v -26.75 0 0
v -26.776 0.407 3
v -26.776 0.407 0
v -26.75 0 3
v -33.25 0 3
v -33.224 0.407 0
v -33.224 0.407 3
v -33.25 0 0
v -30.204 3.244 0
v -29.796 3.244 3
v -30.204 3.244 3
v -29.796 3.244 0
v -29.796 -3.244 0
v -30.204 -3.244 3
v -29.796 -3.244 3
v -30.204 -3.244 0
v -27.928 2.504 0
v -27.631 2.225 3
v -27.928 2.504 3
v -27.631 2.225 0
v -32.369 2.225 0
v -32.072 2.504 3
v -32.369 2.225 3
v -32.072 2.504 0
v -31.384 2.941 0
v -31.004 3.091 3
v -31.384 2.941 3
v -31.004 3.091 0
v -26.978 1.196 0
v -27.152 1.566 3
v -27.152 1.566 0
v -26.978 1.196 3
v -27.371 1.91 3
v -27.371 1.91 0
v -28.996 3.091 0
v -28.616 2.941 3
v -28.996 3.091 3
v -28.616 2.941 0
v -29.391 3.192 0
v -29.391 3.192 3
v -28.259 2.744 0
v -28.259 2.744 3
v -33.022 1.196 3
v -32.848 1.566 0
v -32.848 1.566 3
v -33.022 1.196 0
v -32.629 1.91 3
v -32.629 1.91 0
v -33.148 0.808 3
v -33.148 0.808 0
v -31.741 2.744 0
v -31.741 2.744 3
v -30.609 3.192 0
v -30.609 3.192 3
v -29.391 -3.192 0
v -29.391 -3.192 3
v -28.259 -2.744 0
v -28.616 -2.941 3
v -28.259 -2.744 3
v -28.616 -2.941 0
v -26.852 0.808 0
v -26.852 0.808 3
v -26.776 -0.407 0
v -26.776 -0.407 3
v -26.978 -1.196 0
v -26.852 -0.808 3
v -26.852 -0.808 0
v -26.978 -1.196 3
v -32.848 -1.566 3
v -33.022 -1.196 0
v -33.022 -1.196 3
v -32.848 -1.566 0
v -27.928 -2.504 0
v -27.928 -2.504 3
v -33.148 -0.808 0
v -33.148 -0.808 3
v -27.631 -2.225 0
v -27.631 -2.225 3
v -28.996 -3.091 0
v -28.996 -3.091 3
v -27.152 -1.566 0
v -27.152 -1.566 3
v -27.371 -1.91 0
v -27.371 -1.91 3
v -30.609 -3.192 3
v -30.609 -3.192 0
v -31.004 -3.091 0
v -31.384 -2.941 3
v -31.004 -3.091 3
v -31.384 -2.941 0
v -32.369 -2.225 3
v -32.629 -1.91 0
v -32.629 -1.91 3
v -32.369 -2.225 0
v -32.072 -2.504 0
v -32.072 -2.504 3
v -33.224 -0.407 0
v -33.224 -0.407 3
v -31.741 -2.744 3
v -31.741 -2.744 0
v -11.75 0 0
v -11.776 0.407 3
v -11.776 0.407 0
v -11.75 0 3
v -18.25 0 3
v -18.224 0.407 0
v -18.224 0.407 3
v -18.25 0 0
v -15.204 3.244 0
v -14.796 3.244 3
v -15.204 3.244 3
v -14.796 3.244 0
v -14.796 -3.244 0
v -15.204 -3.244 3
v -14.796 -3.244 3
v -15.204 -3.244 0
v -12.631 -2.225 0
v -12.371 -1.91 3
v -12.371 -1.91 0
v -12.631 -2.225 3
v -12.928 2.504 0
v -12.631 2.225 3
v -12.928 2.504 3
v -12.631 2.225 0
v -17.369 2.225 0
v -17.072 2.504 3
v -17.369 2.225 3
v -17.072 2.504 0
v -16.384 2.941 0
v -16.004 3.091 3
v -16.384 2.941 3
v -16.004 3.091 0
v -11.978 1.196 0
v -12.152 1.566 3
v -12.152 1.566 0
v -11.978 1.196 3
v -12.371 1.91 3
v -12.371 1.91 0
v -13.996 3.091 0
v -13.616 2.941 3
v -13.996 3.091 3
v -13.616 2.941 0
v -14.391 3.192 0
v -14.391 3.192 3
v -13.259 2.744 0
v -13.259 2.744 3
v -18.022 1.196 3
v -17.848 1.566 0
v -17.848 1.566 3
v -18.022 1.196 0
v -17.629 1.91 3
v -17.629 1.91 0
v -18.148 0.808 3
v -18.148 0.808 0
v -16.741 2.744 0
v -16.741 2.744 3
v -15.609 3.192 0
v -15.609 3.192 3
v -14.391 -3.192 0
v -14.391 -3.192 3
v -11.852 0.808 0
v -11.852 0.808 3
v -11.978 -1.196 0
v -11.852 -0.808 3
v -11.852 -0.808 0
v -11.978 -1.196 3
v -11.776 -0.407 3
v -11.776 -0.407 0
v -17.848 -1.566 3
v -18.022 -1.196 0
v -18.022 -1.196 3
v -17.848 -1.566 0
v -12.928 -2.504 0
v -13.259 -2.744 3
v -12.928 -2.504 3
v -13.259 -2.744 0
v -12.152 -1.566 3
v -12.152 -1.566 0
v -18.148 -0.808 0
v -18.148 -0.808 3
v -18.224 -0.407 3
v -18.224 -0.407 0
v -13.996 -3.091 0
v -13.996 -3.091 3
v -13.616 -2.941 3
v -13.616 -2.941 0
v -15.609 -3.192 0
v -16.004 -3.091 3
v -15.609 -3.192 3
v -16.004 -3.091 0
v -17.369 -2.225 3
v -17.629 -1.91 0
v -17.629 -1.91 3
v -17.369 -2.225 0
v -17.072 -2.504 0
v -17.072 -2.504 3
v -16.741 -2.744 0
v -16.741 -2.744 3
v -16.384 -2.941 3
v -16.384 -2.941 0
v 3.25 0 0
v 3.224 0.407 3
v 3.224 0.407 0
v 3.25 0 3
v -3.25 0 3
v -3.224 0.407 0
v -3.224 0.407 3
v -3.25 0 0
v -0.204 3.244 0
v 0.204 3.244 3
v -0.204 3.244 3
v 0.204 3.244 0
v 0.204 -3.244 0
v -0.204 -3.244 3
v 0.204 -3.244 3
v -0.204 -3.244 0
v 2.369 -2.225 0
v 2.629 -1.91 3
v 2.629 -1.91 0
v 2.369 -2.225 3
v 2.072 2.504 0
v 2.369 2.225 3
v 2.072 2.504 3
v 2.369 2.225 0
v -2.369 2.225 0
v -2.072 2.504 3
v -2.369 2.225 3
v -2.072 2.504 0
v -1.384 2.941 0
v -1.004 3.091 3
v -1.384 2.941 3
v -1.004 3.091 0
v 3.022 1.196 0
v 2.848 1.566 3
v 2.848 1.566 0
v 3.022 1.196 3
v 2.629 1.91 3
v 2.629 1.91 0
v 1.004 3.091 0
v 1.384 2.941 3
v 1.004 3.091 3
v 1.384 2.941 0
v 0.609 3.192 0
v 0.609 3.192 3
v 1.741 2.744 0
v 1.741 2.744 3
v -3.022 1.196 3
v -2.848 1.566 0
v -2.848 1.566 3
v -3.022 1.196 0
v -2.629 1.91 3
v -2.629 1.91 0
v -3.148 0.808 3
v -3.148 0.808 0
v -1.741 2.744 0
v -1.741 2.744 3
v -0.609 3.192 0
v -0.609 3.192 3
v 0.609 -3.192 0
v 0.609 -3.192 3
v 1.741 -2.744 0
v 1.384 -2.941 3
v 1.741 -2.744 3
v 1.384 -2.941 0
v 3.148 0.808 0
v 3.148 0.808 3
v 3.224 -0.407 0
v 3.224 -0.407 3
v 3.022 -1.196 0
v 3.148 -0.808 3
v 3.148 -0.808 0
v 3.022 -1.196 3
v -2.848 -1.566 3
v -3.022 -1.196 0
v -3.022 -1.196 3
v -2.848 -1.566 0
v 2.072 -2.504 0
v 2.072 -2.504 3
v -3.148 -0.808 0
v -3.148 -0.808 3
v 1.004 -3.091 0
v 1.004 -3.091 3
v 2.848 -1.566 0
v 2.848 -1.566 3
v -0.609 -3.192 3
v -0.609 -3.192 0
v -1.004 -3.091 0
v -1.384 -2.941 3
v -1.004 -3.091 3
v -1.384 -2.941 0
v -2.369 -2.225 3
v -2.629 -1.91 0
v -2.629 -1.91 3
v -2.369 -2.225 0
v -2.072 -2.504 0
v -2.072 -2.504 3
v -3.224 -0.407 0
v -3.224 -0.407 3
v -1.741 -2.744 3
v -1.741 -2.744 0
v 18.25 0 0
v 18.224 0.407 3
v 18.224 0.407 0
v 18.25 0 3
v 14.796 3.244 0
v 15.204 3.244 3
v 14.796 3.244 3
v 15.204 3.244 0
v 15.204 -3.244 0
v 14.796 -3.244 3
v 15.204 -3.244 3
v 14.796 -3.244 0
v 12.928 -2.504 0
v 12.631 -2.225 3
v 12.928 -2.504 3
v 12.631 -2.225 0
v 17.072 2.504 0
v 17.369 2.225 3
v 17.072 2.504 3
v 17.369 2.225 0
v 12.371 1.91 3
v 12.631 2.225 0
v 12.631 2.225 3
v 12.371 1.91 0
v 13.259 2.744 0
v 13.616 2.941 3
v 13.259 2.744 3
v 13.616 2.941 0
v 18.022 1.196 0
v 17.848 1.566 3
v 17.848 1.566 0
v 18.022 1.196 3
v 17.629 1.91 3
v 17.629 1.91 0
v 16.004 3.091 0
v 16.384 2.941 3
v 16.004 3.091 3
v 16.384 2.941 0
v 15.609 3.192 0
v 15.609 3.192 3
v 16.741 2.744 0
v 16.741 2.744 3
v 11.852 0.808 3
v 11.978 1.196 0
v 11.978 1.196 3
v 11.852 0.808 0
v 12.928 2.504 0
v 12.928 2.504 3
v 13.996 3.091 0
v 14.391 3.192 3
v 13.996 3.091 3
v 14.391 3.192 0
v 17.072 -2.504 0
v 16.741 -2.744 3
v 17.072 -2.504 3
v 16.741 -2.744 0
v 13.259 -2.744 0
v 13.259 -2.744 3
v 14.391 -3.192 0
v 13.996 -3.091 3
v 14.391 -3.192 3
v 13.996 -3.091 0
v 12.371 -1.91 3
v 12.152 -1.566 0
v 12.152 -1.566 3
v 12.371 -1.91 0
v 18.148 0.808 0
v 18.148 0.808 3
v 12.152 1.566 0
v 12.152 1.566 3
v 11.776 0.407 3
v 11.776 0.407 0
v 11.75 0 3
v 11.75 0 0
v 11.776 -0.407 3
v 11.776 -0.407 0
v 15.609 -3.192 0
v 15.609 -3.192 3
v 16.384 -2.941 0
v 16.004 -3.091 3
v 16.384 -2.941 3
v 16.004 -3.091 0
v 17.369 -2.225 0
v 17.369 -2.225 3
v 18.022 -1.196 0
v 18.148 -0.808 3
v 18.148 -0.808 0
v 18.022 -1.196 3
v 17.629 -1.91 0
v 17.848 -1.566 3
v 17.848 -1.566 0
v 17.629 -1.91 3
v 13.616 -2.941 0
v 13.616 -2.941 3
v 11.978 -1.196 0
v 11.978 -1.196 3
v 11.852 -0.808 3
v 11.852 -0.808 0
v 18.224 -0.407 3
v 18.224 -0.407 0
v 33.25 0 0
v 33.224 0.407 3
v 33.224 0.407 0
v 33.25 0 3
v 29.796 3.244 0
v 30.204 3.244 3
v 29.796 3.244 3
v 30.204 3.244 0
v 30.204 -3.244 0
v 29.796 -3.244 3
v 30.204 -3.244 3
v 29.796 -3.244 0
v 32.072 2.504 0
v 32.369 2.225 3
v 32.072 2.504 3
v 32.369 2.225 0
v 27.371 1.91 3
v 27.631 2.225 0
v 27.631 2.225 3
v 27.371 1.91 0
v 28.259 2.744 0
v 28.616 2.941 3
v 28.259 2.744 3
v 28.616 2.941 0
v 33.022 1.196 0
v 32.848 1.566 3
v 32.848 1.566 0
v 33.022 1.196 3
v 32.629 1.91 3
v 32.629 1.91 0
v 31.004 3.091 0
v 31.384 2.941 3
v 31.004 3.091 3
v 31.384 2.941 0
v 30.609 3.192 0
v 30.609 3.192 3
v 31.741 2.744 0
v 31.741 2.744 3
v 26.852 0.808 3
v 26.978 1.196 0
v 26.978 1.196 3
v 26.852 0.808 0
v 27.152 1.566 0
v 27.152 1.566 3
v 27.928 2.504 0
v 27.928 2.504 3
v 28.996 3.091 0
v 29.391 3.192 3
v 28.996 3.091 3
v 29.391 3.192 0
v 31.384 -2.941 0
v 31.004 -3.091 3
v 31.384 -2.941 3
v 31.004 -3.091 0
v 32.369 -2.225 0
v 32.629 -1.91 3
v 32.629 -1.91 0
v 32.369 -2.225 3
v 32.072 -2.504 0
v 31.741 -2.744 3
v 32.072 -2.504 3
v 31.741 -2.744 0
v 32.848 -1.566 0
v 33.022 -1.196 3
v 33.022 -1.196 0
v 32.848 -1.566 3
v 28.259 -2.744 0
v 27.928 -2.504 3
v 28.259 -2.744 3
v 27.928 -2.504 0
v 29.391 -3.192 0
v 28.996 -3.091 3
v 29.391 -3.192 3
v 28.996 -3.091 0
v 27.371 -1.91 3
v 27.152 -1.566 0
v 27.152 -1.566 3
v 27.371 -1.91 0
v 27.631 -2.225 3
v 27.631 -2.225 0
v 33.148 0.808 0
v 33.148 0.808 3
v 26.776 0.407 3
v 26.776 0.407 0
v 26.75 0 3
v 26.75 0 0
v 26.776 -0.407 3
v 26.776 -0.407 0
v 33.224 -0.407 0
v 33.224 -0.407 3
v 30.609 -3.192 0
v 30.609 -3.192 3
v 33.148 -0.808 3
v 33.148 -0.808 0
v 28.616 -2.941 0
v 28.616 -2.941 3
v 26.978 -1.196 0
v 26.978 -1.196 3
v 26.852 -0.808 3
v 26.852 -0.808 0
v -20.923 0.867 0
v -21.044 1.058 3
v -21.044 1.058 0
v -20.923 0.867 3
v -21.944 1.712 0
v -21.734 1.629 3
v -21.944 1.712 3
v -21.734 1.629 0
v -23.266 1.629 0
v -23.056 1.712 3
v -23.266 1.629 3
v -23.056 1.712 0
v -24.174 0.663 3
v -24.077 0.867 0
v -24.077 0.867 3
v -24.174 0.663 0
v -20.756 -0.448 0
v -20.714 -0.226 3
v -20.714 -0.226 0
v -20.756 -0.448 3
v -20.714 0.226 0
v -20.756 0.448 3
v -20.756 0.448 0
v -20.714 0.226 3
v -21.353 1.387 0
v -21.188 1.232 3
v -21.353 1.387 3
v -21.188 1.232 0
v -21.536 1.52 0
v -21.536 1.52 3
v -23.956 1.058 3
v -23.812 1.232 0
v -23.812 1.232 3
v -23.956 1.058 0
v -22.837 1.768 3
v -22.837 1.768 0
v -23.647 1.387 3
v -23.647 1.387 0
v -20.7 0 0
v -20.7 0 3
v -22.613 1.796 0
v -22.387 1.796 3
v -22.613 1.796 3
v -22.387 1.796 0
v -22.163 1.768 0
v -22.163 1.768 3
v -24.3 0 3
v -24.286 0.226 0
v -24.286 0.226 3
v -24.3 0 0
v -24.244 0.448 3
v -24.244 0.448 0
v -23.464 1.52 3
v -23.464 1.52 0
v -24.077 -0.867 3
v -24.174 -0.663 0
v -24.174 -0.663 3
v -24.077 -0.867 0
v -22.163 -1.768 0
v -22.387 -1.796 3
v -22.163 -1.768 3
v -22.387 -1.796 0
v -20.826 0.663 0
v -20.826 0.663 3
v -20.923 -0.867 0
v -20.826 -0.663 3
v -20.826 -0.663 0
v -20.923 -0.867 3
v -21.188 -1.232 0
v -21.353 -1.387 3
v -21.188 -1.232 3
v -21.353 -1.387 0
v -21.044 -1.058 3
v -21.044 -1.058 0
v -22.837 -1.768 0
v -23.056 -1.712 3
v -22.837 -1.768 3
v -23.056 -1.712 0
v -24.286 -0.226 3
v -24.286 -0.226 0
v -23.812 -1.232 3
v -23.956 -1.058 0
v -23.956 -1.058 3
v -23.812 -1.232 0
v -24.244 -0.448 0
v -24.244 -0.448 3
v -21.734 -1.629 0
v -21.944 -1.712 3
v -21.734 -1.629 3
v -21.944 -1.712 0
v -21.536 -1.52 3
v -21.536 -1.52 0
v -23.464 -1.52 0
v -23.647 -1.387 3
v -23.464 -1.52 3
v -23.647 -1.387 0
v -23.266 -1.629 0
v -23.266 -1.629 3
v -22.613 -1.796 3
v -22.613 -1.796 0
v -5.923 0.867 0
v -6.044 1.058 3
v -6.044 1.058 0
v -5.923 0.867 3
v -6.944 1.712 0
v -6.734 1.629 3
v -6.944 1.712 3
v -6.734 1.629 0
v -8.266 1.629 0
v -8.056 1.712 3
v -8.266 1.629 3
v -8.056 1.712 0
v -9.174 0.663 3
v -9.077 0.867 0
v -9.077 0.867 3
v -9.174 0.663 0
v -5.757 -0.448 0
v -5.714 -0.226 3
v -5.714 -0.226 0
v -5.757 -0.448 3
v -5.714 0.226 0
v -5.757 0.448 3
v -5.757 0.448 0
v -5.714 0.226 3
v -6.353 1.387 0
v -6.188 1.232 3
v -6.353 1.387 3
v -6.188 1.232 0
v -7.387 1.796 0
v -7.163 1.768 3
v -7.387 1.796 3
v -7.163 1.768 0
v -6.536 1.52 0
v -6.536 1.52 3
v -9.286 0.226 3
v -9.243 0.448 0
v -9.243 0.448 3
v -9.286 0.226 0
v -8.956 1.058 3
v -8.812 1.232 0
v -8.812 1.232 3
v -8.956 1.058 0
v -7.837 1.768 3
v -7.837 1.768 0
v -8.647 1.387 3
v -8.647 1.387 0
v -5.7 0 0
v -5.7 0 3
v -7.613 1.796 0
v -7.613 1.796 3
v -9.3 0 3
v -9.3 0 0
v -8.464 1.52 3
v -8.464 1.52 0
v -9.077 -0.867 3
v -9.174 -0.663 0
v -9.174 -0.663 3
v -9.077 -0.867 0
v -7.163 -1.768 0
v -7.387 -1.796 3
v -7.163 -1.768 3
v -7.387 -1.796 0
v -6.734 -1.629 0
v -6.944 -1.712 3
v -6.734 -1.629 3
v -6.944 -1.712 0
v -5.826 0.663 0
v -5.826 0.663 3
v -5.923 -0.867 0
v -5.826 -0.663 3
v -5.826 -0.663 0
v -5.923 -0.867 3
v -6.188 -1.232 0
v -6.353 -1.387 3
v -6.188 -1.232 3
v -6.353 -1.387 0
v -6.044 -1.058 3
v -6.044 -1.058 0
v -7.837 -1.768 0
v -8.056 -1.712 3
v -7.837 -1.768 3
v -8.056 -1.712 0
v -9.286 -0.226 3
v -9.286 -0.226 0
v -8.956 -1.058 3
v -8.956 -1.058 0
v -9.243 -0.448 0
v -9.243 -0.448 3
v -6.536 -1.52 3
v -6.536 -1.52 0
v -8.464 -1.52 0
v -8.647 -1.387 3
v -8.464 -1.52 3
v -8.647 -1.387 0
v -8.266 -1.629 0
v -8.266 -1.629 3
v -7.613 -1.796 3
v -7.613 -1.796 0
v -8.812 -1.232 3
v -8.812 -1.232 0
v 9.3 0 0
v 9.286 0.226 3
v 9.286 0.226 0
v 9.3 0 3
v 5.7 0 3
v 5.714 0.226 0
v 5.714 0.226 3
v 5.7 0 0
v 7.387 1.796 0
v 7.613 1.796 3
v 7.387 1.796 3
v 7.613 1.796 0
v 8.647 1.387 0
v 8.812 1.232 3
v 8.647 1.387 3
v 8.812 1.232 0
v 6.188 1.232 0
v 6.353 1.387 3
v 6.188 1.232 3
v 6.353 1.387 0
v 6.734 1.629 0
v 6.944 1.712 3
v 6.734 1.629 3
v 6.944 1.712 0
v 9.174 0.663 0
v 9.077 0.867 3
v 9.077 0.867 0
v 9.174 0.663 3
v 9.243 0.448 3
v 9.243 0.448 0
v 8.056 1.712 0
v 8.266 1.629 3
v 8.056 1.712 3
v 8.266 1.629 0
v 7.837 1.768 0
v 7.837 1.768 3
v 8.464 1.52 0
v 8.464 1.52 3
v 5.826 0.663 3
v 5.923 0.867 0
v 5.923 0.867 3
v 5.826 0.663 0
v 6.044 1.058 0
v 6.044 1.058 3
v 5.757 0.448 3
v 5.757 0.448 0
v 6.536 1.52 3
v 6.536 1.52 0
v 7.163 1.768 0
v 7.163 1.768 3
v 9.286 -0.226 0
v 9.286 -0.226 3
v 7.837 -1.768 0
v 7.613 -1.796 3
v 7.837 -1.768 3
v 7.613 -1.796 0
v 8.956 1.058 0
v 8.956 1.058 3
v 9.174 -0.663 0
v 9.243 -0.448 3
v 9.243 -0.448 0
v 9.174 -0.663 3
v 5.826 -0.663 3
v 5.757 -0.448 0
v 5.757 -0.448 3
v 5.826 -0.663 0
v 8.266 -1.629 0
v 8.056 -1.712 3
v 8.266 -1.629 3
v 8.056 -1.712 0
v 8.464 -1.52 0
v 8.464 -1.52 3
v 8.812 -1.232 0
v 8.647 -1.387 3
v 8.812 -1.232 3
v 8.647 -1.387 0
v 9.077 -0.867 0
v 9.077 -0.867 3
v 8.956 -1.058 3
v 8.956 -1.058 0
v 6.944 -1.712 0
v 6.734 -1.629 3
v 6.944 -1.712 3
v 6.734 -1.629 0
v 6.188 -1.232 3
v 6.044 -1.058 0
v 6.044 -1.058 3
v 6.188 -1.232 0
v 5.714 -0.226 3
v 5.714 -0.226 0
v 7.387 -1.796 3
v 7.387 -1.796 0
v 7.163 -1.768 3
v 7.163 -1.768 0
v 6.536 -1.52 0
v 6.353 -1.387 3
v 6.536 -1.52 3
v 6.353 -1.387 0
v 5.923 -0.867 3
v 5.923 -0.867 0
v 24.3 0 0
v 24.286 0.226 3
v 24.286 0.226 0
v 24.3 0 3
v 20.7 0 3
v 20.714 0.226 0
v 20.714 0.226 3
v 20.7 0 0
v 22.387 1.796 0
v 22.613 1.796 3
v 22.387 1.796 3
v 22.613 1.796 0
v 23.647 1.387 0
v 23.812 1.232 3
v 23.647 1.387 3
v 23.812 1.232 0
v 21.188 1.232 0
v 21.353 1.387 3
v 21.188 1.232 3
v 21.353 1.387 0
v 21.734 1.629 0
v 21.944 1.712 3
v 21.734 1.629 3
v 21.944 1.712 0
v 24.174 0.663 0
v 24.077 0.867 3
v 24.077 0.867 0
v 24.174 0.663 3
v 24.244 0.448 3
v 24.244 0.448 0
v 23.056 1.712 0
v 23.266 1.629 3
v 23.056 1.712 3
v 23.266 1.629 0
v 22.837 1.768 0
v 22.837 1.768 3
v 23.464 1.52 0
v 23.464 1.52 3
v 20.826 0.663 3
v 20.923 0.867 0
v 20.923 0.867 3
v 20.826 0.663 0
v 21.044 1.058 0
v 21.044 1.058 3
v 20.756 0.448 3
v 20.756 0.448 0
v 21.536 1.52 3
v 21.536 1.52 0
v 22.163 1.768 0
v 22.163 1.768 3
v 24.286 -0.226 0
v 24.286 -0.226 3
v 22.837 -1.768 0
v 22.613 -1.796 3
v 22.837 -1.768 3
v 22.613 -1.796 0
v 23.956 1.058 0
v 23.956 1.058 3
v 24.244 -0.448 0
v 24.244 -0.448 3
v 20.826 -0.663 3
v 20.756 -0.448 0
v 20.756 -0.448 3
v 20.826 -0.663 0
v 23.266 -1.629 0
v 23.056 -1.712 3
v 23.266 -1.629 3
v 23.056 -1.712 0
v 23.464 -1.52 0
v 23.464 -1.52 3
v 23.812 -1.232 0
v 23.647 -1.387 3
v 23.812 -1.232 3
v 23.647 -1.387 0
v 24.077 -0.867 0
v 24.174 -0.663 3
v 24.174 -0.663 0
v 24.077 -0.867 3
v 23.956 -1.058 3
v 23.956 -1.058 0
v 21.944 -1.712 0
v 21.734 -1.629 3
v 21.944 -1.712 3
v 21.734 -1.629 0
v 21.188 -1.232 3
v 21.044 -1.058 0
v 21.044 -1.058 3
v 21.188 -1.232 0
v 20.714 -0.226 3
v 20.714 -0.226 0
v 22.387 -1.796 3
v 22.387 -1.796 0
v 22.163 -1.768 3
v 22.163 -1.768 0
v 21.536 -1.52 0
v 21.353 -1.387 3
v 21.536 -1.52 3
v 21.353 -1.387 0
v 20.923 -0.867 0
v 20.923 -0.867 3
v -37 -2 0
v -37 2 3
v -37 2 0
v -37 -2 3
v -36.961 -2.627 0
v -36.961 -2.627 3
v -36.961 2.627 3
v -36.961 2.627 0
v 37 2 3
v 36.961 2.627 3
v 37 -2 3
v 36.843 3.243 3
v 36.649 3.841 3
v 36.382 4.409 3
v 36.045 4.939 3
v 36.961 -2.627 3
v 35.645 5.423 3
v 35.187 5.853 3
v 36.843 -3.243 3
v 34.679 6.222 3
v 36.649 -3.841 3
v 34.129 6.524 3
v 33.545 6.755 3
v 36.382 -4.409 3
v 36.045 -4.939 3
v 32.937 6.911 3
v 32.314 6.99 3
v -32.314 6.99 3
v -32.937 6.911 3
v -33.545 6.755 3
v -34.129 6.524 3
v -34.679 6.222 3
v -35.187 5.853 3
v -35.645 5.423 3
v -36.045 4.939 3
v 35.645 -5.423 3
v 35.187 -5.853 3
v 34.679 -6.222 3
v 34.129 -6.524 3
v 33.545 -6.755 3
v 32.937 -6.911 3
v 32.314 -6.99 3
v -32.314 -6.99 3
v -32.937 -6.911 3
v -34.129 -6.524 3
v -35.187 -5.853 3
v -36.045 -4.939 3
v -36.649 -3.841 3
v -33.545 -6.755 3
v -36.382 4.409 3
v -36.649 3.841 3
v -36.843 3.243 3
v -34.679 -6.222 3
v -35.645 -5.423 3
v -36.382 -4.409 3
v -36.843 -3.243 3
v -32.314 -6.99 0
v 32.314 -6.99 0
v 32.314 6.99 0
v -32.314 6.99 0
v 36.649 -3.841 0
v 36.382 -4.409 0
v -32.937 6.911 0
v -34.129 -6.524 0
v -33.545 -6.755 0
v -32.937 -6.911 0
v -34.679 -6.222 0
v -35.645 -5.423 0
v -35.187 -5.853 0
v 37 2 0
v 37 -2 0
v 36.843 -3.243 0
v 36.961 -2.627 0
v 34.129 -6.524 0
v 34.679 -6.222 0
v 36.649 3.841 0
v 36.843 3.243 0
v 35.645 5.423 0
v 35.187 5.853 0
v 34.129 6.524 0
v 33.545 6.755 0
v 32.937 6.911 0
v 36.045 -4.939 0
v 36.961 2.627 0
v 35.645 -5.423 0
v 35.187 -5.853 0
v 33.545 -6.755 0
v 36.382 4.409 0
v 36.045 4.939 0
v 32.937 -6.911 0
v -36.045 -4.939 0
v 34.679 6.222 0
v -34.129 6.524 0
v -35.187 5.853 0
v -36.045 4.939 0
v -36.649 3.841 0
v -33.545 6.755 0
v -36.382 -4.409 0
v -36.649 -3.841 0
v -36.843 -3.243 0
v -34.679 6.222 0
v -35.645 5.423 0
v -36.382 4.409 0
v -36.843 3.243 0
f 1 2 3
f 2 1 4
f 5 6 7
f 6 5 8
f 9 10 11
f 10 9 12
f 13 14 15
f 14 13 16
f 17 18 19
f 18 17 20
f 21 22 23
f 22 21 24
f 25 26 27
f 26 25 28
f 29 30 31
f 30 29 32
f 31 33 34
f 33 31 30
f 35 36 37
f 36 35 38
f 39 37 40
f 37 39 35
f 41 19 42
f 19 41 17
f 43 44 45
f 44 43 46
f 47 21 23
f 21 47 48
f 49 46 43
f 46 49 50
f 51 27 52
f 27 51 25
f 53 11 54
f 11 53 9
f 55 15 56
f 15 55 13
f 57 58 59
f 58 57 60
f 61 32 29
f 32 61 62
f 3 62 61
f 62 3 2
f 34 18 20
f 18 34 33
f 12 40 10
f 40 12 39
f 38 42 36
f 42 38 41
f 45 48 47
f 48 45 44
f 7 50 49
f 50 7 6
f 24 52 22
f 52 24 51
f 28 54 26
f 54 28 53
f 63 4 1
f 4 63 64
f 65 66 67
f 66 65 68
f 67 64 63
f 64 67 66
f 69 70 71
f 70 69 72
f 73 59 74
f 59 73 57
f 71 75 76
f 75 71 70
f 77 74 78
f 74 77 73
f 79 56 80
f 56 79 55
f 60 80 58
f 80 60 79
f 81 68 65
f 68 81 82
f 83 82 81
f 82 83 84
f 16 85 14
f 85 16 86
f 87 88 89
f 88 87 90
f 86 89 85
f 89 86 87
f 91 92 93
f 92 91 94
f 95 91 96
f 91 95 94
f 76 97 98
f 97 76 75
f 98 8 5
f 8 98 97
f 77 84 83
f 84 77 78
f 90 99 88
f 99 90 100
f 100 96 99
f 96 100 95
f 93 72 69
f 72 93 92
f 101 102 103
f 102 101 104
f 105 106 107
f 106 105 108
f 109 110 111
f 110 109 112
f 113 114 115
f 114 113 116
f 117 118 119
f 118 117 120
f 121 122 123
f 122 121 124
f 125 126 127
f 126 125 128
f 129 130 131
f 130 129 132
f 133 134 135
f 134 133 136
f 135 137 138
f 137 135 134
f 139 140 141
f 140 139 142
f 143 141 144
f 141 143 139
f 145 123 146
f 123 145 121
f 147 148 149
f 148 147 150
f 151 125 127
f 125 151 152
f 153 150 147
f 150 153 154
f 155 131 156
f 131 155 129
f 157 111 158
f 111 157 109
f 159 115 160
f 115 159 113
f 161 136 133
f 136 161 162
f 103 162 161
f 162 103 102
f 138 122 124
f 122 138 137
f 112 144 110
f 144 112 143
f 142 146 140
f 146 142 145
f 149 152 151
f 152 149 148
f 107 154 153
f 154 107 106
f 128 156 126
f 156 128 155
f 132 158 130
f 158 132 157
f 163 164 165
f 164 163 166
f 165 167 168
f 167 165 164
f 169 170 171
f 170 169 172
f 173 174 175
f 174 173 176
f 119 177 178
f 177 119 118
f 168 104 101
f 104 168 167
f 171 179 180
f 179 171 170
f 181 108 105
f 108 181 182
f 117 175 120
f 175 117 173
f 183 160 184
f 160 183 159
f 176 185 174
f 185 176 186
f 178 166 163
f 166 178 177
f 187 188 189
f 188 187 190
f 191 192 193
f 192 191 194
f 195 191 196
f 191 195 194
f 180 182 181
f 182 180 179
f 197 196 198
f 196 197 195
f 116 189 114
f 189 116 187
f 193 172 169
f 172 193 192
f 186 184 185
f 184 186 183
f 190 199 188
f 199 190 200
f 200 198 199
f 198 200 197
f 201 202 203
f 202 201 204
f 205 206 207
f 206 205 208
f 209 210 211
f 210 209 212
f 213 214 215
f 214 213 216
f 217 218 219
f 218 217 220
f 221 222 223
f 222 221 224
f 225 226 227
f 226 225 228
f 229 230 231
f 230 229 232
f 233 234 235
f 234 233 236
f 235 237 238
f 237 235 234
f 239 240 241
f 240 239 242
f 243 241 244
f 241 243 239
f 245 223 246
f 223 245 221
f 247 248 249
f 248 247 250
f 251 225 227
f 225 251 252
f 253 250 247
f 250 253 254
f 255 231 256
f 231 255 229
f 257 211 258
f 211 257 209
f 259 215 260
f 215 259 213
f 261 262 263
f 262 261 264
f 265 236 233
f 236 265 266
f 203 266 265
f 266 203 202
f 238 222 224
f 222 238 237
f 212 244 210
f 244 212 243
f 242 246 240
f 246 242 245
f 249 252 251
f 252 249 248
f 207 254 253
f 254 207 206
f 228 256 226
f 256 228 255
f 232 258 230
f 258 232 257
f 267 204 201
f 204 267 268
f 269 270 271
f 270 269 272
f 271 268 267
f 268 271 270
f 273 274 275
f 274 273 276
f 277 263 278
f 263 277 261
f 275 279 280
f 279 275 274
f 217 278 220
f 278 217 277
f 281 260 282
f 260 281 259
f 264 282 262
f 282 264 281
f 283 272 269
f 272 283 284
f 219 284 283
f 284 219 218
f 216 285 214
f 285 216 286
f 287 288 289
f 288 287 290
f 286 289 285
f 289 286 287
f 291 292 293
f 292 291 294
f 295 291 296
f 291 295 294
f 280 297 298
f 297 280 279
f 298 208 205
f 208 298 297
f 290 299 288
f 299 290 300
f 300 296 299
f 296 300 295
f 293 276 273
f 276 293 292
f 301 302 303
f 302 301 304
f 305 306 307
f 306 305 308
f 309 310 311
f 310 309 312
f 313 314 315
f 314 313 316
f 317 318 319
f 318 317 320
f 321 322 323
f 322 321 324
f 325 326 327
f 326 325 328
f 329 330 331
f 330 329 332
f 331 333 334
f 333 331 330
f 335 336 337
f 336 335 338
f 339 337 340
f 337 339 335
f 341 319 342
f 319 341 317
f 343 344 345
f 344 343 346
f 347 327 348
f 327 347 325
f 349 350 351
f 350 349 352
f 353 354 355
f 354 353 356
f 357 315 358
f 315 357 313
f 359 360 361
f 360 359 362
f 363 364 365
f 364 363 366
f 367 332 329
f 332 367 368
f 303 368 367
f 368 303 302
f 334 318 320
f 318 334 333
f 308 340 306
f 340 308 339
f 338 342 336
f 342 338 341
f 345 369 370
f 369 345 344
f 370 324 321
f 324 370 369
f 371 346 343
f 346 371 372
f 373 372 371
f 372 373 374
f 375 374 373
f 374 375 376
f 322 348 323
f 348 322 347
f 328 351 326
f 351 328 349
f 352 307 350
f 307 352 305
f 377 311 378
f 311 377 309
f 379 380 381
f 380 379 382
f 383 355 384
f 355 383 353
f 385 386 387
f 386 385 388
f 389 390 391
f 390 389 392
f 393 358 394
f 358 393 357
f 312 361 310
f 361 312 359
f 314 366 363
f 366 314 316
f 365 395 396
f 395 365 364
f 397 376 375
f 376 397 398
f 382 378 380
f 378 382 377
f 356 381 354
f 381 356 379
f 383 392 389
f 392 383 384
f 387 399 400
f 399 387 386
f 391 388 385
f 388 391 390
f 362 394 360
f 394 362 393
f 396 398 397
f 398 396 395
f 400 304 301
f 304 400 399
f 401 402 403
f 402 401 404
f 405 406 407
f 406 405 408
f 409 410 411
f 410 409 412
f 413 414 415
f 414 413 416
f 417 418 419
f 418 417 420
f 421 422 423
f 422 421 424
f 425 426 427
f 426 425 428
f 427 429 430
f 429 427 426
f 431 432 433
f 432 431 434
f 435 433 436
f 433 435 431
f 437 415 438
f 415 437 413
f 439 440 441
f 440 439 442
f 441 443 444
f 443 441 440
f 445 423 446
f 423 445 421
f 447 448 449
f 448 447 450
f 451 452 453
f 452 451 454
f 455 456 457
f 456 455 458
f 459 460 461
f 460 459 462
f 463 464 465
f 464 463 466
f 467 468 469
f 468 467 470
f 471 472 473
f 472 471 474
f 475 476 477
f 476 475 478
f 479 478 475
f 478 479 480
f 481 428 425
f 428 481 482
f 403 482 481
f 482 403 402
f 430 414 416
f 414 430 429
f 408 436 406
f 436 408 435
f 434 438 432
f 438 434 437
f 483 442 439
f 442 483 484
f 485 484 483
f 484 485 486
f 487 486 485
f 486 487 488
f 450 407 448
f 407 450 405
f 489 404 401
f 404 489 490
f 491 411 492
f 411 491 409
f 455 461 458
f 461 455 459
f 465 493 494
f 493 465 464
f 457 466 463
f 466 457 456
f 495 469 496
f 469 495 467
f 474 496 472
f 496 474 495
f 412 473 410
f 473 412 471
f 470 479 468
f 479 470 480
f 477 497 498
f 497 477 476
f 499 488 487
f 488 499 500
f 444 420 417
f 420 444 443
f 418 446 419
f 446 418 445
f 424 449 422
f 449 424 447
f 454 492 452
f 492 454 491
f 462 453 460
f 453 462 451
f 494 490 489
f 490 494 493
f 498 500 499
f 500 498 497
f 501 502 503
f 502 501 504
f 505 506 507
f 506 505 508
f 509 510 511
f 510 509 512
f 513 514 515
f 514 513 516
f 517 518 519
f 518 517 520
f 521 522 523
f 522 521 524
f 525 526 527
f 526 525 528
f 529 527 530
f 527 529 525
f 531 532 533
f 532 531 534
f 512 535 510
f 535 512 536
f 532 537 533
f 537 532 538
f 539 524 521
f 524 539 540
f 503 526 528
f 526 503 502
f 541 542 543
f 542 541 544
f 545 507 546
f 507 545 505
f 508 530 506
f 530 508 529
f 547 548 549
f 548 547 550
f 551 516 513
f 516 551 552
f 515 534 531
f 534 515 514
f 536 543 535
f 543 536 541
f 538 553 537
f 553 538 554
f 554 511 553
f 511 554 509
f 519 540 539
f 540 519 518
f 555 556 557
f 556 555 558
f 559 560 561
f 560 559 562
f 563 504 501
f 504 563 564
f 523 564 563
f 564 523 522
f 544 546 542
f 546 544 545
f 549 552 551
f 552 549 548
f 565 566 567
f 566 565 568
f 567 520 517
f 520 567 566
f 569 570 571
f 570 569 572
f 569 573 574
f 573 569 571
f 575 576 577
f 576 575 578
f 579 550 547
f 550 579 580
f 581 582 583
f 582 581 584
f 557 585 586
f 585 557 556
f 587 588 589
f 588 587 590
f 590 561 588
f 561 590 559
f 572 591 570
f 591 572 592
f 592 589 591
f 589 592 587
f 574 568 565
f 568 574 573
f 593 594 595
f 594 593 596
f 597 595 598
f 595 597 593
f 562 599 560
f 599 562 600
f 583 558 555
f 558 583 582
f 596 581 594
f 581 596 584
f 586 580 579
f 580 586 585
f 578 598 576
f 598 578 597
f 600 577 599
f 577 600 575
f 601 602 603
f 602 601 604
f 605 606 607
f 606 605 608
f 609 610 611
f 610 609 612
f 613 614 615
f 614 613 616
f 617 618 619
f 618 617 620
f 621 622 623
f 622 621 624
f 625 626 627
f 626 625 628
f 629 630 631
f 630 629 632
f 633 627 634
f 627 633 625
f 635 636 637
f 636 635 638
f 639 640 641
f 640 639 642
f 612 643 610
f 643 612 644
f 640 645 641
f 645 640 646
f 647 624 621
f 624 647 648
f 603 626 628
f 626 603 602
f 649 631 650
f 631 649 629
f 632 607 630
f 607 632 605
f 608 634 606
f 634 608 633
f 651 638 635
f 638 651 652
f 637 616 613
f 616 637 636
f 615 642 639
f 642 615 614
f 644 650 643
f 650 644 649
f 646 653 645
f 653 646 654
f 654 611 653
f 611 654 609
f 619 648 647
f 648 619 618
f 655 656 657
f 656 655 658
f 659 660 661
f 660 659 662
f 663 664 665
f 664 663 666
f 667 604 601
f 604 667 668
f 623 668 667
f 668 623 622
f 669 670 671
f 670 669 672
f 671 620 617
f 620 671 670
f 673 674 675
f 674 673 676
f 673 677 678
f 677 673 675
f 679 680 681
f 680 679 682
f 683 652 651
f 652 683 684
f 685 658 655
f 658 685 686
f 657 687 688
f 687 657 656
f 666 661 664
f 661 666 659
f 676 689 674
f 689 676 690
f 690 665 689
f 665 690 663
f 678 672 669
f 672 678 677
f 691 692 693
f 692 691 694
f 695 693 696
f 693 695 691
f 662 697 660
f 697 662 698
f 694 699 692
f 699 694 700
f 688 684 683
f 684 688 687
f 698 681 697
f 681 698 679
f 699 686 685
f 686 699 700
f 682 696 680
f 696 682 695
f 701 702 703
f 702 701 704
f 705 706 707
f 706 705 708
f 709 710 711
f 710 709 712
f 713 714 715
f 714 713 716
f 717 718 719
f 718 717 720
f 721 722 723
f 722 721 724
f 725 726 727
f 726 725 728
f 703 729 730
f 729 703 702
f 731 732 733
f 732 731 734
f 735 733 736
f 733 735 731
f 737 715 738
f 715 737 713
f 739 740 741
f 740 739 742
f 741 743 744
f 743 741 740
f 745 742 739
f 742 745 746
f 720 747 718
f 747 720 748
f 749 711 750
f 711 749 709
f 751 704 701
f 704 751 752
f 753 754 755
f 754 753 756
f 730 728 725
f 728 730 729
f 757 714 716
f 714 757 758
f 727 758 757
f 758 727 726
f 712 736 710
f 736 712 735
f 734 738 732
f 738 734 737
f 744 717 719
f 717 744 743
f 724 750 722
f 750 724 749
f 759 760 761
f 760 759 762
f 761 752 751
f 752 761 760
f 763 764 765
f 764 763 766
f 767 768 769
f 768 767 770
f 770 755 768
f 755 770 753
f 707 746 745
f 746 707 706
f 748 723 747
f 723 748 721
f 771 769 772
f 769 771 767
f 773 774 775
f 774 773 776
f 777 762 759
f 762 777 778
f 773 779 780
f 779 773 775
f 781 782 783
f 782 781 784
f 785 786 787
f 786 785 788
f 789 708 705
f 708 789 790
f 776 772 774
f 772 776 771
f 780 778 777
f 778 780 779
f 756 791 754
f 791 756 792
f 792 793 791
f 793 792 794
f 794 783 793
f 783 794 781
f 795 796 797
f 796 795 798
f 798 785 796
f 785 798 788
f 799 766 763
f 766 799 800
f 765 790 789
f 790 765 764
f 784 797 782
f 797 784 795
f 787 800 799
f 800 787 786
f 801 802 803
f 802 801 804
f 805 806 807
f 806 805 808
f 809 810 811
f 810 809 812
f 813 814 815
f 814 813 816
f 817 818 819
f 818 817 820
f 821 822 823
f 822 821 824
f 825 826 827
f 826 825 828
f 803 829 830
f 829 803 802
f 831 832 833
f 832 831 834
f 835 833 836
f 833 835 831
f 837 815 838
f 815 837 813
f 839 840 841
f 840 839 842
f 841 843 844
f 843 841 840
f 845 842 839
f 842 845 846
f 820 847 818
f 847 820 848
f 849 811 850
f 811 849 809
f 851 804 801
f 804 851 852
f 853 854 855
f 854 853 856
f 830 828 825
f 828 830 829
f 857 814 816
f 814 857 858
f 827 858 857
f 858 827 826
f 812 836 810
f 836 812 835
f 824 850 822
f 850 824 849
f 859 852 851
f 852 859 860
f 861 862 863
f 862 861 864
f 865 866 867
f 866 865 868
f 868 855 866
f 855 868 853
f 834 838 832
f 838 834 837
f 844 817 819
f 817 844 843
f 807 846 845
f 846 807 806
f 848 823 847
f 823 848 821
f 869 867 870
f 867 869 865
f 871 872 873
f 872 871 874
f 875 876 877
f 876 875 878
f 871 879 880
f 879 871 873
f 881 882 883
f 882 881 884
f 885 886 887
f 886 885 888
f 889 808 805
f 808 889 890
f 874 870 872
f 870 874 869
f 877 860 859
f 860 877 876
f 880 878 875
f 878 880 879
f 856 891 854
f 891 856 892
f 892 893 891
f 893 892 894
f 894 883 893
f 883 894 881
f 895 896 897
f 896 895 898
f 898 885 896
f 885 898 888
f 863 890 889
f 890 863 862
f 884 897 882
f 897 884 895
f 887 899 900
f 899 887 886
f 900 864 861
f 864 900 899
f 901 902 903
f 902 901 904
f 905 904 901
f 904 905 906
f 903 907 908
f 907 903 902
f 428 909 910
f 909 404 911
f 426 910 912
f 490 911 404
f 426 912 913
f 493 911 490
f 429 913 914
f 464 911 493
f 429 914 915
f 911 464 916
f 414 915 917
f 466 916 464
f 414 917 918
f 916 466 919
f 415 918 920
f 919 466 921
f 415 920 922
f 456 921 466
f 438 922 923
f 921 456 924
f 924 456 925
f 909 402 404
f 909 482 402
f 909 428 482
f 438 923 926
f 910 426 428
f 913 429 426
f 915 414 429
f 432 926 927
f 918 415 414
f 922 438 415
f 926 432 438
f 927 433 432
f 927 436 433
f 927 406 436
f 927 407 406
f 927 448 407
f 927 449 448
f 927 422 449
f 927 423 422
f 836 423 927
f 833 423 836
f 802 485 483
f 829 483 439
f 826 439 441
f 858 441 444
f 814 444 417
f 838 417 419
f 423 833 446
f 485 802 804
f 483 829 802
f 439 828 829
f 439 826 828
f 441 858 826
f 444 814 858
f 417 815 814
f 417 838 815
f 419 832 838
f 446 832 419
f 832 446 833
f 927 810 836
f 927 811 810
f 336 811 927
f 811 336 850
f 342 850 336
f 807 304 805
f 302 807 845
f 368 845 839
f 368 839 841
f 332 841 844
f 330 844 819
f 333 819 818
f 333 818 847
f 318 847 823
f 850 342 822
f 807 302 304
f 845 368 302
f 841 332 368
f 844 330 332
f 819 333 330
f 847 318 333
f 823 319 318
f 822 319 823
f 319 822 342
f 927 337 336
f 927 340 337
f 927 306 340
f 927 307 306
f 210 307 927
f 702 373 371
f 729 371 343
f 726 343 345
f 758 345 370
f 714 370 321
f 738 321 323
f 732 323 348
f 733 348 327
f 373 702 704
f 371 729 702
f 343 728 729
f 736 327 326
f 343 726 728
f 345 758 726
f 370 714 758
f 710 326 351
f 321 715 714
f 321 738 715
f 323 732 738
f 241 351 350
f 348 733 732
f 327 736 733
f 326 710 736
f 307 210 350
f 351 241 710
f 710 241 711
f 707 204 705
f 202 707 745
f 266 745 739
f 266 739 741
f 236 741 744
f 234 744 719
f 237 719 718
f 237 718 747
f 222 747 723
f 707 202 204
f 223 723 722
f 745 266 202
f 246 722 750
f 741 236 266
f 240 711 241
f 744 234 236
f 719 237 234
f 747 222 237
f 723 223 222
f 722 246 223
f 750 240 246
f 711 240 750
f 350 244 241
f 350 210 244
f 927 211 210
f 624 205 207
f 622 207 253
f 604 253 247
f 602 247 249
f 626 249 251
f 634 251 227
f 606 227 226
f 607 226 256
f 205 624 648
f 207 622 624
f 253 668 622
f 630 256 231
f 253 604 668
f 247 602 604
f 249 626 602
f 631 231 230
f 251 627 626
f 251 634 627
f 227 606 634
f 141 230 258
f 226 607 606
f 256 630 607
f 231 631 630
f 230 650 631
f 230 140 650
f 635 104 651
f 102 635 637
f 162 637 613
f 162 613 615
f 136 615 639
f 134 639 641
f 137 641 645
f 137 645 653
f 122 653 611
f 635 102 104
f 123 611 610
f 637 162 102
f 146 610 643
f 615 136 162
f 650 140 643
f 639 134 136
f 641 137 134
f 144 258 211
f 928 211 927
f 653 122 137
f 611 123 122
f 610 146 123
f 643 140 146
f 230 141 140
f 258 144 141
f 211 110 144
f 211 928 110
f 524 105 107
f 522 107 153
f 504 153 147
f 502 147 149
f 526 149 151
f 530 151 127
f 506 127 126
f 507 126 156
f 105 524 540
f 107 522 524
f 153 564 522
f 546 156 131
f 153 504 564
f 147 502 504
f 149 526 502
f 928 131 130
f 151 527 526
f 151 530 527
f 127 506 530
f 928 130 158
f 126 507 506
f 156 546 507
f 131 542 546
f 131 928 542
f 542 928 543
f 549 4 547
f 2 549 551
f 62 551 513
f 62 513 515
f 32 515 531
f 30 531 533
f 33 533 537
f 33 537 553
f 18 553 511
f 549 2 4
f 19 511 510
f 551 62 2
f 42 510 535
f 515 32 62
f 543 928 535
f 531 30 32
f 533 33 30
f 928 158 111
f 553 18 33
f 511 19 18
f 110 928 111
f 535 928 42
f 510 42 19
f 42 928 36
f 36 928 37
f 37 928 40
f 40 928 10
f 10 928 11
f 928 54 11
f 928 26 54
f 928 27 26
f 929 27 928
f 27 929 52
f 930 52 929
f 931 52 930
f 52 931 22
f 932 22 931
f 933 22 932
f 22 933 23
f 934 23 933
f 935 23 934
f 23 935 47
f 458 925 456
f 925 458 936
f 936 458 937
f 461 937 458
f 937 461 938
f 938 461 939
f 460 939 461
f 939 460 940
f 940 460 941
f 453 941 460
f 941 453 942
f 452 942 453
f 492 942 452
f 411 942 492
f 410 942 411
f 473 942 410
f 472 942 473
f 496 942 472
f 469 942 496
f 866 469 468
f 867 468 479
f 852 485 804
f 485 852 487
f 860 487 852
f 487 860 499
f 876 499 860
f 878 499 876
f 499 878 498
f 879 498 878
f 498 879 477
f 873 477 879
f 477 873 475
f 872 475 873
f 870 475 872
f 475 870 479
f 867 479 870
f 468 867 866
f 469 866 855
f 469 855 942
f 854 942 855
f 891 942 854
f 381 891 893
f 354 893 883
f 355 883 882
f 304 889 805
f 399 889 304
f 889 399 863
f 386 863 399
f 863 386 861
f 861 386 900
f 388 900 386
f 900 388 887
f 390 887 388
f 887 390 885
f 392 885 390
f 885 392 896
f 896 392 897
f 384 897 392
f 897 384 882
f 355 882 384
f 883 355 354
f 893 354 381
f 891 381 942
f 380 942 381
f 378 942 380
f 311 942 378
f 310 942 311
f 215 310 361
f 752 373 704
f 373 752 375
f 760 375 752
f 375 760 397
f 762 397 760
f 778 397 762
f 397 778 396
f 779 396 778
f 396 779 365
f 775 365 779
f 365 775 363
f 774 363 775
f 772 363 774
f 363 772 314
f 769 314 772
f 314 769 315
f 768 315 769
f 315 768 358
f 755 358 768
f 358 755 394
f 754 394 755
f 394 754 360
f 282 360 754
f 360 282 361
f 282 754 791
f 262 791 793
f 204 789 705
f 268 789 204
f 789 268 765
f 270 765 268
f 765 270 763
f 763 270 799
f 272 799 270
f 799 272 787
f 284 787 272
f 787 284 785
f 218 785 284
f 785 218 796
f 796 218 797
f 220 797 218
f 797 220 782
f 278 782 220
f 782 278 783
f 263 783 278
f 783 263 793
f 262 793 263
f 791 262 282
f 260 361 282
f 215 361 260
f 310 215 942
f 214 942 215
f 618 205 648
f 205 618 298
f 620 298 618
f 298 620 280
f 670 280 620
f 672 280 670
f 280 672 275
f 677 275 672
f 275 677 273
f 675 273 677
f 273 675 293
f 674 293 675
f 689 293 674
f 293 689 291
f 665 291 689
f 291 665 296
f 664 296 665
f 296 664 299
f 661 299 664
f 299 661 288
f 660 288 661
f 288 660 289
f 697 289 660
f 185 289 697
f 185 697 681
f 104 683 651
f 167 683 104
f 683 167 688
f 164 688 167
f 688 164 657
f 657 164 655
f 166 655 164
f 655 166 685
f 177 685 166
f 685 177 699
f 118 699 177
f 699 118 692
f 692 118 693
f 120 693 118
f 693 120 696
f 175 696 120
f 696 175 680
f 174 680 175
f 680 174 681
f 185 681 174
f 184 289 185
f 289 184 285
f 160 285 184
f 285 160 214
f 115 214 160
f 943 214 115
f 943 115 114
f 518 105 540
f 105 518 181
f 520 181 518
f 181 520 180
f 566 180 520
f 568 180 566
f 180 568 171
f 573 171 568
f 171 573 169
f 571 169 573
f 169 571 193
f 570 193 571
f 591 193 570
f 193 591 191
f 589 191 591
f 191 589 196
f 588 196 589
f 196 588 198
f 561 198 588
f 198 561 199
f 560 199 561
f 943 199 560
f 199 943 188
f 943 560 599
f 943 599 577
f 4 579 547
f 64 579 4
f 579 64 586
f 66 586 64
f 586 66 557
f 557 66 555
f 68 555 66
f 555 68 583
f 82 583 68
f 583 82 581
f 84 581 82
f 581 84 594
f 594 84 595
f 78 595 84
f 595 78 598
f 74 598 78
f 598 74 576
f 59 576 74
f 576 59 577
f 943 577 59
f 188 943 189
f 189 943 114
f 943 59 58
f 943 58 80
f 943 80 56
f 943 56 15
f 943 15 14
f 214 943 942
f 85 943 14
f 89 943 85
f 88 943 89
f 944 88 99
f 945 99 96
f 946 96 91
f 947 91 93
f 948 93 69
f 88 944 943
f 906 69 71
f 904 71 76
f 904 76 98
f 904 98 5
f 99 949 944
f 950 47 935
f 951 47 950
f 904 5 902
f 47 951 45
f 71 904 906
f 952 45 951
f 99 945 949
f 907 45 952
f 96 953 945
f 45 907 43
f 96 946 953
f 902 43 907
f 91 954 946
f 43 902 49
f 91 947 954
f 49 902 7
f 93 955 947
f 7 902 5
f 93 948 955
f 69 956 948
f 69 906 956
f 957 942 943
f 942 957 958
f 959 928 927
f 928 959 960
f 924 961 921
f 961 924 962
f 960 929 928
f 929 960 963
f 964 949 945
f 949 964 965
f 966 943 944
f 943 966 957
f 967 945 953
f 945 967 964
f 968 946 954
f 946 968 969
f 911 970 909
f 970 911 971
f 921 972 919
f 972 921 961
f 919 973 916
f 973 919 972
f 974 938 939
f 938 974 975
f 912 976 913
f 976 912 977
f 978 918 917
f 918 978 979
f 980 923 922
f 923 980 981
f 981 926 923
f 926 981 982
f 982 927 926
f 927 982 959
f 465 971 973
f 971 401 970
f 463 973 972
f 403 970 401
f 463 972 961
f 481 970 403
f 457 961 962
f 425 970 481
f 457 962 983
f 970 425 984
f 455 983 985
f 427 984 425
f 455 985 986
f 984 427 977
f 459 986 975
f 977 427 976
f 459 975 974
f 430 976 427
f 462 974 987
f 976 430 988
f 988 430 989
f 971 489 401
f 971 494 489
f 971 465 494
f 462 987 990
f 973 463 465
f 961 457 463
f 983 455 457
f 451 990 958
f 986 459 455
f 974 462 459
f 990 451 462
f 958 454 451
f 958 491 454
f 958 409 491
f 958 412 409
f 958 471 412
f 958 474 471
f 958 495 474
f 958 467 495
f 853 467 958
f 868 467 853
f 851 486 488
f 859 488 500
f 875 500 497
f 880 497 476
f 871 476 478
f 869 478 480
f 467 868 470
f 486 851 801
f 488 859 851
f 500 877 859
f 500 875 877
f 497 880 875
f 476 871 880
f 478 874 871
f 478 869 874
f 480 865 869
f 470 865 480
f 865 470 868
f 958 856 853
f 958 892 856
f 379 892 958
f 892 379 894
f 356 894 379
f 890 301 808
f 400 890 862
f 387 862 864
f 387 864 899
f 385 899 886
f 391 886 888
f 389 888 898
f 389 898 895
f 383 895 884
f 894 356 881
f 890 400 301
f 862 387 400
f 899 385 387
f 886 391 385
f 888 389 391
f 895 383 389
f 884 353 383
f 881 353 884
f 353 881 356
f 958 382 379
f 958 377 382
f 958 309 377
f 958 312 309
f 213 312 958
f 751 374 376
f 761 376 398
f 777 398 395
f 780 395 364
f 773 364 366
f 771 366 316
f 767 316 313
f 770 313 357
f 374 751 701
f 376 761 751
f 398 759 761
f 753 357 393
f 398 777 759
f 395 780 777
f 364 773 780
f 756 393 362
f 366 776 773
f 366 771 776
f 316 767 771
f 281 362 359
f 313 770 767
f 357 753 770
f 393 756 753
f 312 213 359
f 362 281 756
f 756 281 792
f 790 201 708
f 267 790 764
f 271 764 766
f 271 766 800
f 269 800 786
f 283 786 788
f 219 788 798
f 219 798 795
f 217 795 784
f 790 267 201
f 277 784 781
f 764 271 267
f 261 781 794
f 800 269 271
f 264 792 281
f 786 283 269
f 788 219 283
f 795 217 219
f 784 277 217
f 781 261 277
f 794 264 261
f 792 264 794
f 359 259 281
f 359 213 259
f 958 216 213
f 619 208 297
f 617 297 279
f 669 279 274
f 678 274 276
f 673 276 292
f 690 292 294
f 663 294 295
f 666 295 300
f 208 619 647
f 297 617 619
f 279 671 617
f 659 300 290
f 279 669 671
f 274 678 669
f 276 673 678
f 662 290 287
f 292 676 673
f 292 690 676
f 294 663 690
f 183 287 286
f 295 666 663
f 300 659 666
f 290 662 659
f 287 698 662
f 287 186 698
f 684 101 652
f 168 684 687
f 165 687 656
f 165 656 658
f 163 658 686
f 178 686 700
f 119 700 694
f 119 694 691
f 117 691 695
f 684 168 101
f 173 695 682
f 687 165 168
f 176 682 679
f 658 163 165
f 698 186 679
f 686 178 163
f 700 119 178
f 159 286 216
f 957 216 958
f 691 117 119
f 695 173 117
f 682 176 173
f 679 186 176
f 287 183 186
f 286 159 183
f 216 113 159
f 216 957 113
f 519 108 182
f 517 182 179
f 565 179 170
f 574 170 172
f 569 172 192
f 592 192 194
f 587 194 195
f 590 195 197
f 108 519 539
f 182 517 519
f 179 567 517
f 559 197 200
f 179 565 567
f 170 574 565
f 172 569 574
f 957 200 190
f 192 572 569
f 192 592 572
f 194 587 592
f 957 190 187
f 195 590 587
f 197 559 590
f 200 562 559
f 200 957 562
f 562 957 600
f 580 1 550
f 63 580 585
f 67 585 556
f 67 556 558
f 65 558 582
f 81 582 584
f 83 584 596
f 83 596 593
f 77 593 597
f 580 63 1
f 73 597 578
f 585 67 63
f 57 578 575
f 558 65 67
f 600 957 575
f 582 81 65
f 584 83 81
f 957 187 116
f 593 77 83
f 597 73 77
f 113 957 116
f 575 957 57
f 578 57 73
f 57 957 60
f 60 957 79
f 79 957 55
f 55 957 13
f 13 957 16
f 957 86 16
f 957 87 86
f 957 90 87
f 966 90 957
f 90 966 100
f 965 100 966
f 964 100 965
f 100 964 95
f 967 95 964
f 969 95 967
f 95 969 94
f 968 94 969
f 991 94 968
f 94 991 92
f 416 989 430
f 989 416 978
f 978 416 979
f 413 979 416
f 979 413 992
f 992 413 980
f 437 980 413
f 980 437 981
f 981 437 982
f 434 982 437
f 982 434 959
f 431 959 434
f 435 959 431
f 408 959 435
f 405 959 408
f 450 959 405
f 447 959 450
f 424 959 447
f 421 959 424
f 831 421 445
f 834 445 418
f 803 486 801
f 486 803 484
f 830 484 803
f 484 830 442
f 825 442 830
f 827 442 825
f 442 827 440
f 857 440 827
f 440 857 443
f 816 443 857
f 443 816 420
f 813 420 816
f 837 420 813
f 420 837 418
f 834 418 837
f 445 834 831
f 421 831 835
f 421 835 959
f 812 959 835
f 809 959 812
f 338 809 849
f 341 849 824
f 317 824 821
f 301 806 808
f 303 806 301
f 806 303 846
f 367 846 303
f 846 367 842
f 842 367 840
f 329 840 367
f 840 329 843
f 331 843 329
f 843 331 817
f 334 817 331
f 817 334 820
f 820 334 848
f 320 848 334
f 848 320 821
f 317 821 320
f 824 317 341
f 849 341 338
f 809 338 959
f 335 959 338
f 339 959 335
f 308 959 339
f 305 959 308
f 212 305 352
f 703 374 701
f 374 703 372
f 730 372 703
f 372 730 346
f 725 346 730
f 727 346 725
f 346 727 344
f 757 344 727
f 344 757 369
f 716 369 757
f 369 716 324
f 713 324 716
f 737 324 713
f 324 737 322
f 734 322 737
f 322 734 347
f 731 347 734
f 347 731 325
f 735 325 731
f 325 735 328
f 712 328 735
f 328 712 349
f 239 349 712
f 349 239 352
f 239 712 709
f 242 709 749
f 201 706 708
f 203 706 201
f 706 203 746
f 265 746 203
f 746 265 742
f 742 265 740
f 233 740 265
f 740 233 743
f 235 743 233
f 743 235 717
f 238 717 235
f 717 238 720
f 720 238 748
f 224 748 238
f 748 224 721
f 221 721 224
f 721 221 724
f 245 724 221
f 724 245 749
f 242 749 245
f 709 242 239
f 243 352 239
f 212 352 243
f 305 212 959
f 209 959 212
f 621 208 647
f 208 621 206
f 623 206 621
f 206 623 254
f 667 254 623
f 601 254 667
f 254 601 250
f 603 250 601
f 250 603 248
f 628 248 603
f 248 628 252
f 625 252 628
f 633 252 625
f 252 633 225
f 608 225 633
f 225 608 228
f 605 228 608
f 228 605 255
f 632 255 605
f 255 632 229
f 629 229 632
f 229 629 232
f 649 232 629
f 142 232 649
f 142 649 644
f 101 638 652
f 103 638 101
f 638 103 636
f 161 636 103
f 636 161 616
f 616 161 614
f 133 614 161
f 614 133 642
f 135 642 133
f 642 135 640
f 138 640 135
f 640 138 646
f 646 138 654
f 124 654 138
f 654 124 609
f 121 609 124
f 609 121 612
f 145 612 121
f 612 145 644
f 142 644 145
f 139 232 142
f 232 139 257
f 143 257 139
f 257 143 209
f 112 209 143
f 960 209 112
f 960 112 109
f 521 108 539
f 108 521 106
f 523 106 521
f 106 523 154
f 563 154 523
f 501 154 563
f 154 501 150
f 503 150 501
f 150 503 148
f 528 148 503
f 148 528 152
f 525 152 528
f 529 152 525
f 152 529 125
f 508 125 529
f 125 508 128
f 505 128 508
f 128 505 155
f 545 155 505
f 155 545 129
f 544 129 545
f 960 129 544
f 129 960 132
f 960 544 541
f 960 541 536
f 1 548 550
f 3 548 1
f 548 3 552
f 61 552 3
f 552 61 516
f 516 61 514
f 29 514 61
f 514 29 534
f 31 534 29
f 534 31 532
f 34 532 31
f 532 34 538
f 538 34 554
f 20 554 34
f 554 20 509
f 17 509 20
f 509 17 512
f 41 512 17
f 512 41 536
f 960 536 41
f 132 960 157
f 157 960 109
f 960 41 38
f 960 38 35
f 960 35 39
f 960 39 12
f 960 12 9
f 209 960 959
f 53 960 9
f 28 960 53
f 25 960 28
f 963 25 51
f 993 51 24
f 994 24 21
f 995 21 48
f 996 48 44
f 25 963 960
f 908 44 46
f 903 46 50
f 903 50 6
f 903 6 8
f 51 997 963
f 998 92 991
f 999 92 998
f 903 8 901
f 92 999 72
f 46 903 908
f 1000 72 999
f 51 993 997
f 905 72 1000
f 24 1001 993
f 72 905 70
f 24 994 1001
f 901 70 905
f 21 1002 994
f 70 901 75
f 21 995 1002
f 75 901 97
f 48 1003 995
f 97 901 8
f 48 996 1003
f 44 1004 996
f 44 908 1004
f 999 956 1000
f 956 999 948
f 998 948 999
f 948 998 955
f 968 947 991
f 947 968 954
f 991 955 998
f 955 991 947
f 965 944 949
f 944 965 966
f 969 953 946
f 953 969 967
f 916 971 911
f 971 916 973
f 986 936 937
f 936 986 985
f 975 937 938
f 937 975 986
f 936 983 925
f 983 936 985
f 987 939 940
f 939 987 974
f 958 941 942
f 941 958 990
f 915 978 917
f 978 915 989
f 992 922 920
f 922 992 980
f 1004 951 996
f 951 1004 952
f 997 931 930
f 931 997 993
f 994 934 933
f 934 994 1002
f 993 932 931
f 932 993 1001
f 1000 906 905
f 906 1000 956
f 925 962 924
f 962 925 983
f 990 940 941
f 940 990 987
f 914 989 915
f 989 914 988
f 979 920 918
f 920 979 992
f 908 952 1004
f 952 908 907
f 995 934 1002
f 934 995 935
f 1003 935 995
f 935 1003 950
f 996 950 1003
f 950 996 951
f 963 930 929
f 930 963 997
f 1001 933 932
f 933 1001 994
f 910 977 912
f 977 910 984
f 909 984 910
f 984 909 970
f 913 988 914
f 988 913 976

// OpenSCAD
$fn = 50;


difference() {
	union() {
		translate(v = [0, 0, 0]) {
			rotate(a = [0, 0, 0]) {
				hull() {
					translate(v = [-32.0000000000, 2.0000000000, 0]) {
						rotate(a = [0, 0, 0]) {
							translate(v = [0, 0, 0]) {
								rotate(a = [0, 0, 0]) {
									cylinder(h = 3, r = 5);
								}
							}
						}
					}
					translate(v = [32.0000000000, 2.0000000000, 0]) {
						rotate(a = [0, 0, 0]) {
							translate(v = [0, 0, 0]) {
								rotate(a = [0, 0, 0]) {
									cylinder(h = 3, r = 5);
								}
							}
						}
					}
					translate(v = [-32.0000000000, -2.0000000000, 0]) {
						rotate(a = [0, 0, 0]) {
							translate(v = [0, 0, 0]) {
								rotate(a = [0, 0, 0]) {
									cylinder(h = 3, r = 5);
								}
							}
						}
					}
					translate(v = [32.0000000000, -2.0000000000, 0]) {
						rotate(a = [0, 0, 0]) {
							translate(v = [0, 0, 0]) {
								rotate(a = [0, 0, 0]) {
									cylinder(h = 3, r = 5);
								}
							}
						}
					}
				}
			}
		}
	}
	union() {
		translate(v = [-30.0000000000, 0.0000000000, 0]) {
			rotate(a = [0, 0, 0]) {
				translate(v = [0, 0, -50]) {
					rotate(a = [0, 0, 0]) {
						cylinder(h = 100, r = 3.2500000000);
					}
				}
			}
		}
		translate(v = [-15.0000000000, 0.0000000000, 0]) {
			rotate(a = [0, 0, 0]) {
				translate(v = [0, 0, -50]) {
					rotate(a = [0, 0, 0]) {
						cylinder(h = 100, r = 3.2500000000);
					}
				}
			}
		}
		translate(v = [0.0000000000, 0.0000000000, 0]) {
			rotate(a = [0, 0, 0]) {
				translate(v = [0, 0, -50]) {
					rotate(a = [0, 0, 0]) {
						cylinder(h = 100, r = 3.2500000000);
					}
				}
			}
		}
		translate(v = [15.0000000000, 0.0000000000, 0]) {
			rotate(a = [0, 0, 0]) {
				translate(v = [0, 0, -50]) {
					rotate(a = [0, 0, 0]) {
						cylinder(h = 100, r = 3.2500000000);
					}
				}
			}
		}
		translate(v = [30.0000000000, 0.0000000000, 0]) {
			rotate(a = [0, 0, 0]) {
				translate(v = [0, 0, -50]) {
					rotate(a = [0, 0, 0]) {
						cylinder(h = 100, r = 3.2500000000);
					}
				}
			}
		}
		translate(v = [-30.0000000000, 0.0000000000, 0]) {
			rotate(a = [0, 0, 0]) {
				translate(v = [0, 0, -50]) {
					rotate(a = [0, 0, 0]) {
						cylinder(h = 100, r = 1.8000000000);
					}
				}
			}
		}
		translate(v = [-22.5000000000, 0.0000000000, 0]) {
			rotate(a = [0, 0, 0]) {
				translate(v = [0, 0, -50]) {
					rotate(a = [0, 0, 0]) {
						cylinder(h = 100, r = 1.8000000000);
					}
				}
			}
		}
		translate(v = [-15.0000000000, 0.0000000000, 0]) {
			rotate(a = [0, 0, 0]) {
				translate(v = [0, 0, -50]) {
					rotate(a = [0, 0, 0]) {
						cylinder(h = 100, r = 1.8000000000);
					}
				}
			}
		}
		translate(v = [-7.5000000000, 0.0000000000, 0]) {
			rotate(a = [0, 0, 0]) {
				translate(v = [0, 0, -50]) {
					rotate(a = [0, 0, 0]) {
						cylinder(h = 100, r = 1.8000000000);
					}
				}
			}
		}
		translate(v = [0.0000000000, 0.0000000000, 0]) {
			rotate(a = [0, 0, 0]) {
				translate(v = [0, 0, -50]) {
					rotate(a = [0, 0, 0]) {
						cylinder(h = 100, r = 1.8000000000);
					}
				}
			}
		}
		translate(v = [7.5000000000, 0.0000000000, 0]) {
			rotate(a = [0, 0, 0]) {
				translate(v = [0, 0, -50]) {
					rotate(a = [0, 0, 0]) {
						cylinder(h = 100, r = 1.8000000000);
					}
				}
			}
		}
		translate(v = [15.0000000000, 0.0000000000, 0]) {
			rotate(a = [0, 0, 0]) {
				translate(v = [0, 0, -50]) {
					rotate(a = [0, 0, 0]) {
						cylinder(h = 100, r = 1.8000000000);
					}
				}
			}
		}
		translate(v = [22.5000000000, 0.0000000000, 0]) {
			rotate(a = [0, 0, 0]) {
				translate(v = [0, 0, -50]) {
					rotate(a = [0, 0, 0]) {
						cylinder(h = 100, r = 1.8000000000);
					}
				}
			}
		}
		translate(v = [30.0000000000, 0.0000000000, 0]) {
			rotate(a = [0, 0, 0]) {
				translate(v = [0, 0, -50]) {
					rotate(a = [0, 0, 0]) {
						cylinder(h = 100, r = 1.8000000000);
					}
				}
			}
		}
	}
}
